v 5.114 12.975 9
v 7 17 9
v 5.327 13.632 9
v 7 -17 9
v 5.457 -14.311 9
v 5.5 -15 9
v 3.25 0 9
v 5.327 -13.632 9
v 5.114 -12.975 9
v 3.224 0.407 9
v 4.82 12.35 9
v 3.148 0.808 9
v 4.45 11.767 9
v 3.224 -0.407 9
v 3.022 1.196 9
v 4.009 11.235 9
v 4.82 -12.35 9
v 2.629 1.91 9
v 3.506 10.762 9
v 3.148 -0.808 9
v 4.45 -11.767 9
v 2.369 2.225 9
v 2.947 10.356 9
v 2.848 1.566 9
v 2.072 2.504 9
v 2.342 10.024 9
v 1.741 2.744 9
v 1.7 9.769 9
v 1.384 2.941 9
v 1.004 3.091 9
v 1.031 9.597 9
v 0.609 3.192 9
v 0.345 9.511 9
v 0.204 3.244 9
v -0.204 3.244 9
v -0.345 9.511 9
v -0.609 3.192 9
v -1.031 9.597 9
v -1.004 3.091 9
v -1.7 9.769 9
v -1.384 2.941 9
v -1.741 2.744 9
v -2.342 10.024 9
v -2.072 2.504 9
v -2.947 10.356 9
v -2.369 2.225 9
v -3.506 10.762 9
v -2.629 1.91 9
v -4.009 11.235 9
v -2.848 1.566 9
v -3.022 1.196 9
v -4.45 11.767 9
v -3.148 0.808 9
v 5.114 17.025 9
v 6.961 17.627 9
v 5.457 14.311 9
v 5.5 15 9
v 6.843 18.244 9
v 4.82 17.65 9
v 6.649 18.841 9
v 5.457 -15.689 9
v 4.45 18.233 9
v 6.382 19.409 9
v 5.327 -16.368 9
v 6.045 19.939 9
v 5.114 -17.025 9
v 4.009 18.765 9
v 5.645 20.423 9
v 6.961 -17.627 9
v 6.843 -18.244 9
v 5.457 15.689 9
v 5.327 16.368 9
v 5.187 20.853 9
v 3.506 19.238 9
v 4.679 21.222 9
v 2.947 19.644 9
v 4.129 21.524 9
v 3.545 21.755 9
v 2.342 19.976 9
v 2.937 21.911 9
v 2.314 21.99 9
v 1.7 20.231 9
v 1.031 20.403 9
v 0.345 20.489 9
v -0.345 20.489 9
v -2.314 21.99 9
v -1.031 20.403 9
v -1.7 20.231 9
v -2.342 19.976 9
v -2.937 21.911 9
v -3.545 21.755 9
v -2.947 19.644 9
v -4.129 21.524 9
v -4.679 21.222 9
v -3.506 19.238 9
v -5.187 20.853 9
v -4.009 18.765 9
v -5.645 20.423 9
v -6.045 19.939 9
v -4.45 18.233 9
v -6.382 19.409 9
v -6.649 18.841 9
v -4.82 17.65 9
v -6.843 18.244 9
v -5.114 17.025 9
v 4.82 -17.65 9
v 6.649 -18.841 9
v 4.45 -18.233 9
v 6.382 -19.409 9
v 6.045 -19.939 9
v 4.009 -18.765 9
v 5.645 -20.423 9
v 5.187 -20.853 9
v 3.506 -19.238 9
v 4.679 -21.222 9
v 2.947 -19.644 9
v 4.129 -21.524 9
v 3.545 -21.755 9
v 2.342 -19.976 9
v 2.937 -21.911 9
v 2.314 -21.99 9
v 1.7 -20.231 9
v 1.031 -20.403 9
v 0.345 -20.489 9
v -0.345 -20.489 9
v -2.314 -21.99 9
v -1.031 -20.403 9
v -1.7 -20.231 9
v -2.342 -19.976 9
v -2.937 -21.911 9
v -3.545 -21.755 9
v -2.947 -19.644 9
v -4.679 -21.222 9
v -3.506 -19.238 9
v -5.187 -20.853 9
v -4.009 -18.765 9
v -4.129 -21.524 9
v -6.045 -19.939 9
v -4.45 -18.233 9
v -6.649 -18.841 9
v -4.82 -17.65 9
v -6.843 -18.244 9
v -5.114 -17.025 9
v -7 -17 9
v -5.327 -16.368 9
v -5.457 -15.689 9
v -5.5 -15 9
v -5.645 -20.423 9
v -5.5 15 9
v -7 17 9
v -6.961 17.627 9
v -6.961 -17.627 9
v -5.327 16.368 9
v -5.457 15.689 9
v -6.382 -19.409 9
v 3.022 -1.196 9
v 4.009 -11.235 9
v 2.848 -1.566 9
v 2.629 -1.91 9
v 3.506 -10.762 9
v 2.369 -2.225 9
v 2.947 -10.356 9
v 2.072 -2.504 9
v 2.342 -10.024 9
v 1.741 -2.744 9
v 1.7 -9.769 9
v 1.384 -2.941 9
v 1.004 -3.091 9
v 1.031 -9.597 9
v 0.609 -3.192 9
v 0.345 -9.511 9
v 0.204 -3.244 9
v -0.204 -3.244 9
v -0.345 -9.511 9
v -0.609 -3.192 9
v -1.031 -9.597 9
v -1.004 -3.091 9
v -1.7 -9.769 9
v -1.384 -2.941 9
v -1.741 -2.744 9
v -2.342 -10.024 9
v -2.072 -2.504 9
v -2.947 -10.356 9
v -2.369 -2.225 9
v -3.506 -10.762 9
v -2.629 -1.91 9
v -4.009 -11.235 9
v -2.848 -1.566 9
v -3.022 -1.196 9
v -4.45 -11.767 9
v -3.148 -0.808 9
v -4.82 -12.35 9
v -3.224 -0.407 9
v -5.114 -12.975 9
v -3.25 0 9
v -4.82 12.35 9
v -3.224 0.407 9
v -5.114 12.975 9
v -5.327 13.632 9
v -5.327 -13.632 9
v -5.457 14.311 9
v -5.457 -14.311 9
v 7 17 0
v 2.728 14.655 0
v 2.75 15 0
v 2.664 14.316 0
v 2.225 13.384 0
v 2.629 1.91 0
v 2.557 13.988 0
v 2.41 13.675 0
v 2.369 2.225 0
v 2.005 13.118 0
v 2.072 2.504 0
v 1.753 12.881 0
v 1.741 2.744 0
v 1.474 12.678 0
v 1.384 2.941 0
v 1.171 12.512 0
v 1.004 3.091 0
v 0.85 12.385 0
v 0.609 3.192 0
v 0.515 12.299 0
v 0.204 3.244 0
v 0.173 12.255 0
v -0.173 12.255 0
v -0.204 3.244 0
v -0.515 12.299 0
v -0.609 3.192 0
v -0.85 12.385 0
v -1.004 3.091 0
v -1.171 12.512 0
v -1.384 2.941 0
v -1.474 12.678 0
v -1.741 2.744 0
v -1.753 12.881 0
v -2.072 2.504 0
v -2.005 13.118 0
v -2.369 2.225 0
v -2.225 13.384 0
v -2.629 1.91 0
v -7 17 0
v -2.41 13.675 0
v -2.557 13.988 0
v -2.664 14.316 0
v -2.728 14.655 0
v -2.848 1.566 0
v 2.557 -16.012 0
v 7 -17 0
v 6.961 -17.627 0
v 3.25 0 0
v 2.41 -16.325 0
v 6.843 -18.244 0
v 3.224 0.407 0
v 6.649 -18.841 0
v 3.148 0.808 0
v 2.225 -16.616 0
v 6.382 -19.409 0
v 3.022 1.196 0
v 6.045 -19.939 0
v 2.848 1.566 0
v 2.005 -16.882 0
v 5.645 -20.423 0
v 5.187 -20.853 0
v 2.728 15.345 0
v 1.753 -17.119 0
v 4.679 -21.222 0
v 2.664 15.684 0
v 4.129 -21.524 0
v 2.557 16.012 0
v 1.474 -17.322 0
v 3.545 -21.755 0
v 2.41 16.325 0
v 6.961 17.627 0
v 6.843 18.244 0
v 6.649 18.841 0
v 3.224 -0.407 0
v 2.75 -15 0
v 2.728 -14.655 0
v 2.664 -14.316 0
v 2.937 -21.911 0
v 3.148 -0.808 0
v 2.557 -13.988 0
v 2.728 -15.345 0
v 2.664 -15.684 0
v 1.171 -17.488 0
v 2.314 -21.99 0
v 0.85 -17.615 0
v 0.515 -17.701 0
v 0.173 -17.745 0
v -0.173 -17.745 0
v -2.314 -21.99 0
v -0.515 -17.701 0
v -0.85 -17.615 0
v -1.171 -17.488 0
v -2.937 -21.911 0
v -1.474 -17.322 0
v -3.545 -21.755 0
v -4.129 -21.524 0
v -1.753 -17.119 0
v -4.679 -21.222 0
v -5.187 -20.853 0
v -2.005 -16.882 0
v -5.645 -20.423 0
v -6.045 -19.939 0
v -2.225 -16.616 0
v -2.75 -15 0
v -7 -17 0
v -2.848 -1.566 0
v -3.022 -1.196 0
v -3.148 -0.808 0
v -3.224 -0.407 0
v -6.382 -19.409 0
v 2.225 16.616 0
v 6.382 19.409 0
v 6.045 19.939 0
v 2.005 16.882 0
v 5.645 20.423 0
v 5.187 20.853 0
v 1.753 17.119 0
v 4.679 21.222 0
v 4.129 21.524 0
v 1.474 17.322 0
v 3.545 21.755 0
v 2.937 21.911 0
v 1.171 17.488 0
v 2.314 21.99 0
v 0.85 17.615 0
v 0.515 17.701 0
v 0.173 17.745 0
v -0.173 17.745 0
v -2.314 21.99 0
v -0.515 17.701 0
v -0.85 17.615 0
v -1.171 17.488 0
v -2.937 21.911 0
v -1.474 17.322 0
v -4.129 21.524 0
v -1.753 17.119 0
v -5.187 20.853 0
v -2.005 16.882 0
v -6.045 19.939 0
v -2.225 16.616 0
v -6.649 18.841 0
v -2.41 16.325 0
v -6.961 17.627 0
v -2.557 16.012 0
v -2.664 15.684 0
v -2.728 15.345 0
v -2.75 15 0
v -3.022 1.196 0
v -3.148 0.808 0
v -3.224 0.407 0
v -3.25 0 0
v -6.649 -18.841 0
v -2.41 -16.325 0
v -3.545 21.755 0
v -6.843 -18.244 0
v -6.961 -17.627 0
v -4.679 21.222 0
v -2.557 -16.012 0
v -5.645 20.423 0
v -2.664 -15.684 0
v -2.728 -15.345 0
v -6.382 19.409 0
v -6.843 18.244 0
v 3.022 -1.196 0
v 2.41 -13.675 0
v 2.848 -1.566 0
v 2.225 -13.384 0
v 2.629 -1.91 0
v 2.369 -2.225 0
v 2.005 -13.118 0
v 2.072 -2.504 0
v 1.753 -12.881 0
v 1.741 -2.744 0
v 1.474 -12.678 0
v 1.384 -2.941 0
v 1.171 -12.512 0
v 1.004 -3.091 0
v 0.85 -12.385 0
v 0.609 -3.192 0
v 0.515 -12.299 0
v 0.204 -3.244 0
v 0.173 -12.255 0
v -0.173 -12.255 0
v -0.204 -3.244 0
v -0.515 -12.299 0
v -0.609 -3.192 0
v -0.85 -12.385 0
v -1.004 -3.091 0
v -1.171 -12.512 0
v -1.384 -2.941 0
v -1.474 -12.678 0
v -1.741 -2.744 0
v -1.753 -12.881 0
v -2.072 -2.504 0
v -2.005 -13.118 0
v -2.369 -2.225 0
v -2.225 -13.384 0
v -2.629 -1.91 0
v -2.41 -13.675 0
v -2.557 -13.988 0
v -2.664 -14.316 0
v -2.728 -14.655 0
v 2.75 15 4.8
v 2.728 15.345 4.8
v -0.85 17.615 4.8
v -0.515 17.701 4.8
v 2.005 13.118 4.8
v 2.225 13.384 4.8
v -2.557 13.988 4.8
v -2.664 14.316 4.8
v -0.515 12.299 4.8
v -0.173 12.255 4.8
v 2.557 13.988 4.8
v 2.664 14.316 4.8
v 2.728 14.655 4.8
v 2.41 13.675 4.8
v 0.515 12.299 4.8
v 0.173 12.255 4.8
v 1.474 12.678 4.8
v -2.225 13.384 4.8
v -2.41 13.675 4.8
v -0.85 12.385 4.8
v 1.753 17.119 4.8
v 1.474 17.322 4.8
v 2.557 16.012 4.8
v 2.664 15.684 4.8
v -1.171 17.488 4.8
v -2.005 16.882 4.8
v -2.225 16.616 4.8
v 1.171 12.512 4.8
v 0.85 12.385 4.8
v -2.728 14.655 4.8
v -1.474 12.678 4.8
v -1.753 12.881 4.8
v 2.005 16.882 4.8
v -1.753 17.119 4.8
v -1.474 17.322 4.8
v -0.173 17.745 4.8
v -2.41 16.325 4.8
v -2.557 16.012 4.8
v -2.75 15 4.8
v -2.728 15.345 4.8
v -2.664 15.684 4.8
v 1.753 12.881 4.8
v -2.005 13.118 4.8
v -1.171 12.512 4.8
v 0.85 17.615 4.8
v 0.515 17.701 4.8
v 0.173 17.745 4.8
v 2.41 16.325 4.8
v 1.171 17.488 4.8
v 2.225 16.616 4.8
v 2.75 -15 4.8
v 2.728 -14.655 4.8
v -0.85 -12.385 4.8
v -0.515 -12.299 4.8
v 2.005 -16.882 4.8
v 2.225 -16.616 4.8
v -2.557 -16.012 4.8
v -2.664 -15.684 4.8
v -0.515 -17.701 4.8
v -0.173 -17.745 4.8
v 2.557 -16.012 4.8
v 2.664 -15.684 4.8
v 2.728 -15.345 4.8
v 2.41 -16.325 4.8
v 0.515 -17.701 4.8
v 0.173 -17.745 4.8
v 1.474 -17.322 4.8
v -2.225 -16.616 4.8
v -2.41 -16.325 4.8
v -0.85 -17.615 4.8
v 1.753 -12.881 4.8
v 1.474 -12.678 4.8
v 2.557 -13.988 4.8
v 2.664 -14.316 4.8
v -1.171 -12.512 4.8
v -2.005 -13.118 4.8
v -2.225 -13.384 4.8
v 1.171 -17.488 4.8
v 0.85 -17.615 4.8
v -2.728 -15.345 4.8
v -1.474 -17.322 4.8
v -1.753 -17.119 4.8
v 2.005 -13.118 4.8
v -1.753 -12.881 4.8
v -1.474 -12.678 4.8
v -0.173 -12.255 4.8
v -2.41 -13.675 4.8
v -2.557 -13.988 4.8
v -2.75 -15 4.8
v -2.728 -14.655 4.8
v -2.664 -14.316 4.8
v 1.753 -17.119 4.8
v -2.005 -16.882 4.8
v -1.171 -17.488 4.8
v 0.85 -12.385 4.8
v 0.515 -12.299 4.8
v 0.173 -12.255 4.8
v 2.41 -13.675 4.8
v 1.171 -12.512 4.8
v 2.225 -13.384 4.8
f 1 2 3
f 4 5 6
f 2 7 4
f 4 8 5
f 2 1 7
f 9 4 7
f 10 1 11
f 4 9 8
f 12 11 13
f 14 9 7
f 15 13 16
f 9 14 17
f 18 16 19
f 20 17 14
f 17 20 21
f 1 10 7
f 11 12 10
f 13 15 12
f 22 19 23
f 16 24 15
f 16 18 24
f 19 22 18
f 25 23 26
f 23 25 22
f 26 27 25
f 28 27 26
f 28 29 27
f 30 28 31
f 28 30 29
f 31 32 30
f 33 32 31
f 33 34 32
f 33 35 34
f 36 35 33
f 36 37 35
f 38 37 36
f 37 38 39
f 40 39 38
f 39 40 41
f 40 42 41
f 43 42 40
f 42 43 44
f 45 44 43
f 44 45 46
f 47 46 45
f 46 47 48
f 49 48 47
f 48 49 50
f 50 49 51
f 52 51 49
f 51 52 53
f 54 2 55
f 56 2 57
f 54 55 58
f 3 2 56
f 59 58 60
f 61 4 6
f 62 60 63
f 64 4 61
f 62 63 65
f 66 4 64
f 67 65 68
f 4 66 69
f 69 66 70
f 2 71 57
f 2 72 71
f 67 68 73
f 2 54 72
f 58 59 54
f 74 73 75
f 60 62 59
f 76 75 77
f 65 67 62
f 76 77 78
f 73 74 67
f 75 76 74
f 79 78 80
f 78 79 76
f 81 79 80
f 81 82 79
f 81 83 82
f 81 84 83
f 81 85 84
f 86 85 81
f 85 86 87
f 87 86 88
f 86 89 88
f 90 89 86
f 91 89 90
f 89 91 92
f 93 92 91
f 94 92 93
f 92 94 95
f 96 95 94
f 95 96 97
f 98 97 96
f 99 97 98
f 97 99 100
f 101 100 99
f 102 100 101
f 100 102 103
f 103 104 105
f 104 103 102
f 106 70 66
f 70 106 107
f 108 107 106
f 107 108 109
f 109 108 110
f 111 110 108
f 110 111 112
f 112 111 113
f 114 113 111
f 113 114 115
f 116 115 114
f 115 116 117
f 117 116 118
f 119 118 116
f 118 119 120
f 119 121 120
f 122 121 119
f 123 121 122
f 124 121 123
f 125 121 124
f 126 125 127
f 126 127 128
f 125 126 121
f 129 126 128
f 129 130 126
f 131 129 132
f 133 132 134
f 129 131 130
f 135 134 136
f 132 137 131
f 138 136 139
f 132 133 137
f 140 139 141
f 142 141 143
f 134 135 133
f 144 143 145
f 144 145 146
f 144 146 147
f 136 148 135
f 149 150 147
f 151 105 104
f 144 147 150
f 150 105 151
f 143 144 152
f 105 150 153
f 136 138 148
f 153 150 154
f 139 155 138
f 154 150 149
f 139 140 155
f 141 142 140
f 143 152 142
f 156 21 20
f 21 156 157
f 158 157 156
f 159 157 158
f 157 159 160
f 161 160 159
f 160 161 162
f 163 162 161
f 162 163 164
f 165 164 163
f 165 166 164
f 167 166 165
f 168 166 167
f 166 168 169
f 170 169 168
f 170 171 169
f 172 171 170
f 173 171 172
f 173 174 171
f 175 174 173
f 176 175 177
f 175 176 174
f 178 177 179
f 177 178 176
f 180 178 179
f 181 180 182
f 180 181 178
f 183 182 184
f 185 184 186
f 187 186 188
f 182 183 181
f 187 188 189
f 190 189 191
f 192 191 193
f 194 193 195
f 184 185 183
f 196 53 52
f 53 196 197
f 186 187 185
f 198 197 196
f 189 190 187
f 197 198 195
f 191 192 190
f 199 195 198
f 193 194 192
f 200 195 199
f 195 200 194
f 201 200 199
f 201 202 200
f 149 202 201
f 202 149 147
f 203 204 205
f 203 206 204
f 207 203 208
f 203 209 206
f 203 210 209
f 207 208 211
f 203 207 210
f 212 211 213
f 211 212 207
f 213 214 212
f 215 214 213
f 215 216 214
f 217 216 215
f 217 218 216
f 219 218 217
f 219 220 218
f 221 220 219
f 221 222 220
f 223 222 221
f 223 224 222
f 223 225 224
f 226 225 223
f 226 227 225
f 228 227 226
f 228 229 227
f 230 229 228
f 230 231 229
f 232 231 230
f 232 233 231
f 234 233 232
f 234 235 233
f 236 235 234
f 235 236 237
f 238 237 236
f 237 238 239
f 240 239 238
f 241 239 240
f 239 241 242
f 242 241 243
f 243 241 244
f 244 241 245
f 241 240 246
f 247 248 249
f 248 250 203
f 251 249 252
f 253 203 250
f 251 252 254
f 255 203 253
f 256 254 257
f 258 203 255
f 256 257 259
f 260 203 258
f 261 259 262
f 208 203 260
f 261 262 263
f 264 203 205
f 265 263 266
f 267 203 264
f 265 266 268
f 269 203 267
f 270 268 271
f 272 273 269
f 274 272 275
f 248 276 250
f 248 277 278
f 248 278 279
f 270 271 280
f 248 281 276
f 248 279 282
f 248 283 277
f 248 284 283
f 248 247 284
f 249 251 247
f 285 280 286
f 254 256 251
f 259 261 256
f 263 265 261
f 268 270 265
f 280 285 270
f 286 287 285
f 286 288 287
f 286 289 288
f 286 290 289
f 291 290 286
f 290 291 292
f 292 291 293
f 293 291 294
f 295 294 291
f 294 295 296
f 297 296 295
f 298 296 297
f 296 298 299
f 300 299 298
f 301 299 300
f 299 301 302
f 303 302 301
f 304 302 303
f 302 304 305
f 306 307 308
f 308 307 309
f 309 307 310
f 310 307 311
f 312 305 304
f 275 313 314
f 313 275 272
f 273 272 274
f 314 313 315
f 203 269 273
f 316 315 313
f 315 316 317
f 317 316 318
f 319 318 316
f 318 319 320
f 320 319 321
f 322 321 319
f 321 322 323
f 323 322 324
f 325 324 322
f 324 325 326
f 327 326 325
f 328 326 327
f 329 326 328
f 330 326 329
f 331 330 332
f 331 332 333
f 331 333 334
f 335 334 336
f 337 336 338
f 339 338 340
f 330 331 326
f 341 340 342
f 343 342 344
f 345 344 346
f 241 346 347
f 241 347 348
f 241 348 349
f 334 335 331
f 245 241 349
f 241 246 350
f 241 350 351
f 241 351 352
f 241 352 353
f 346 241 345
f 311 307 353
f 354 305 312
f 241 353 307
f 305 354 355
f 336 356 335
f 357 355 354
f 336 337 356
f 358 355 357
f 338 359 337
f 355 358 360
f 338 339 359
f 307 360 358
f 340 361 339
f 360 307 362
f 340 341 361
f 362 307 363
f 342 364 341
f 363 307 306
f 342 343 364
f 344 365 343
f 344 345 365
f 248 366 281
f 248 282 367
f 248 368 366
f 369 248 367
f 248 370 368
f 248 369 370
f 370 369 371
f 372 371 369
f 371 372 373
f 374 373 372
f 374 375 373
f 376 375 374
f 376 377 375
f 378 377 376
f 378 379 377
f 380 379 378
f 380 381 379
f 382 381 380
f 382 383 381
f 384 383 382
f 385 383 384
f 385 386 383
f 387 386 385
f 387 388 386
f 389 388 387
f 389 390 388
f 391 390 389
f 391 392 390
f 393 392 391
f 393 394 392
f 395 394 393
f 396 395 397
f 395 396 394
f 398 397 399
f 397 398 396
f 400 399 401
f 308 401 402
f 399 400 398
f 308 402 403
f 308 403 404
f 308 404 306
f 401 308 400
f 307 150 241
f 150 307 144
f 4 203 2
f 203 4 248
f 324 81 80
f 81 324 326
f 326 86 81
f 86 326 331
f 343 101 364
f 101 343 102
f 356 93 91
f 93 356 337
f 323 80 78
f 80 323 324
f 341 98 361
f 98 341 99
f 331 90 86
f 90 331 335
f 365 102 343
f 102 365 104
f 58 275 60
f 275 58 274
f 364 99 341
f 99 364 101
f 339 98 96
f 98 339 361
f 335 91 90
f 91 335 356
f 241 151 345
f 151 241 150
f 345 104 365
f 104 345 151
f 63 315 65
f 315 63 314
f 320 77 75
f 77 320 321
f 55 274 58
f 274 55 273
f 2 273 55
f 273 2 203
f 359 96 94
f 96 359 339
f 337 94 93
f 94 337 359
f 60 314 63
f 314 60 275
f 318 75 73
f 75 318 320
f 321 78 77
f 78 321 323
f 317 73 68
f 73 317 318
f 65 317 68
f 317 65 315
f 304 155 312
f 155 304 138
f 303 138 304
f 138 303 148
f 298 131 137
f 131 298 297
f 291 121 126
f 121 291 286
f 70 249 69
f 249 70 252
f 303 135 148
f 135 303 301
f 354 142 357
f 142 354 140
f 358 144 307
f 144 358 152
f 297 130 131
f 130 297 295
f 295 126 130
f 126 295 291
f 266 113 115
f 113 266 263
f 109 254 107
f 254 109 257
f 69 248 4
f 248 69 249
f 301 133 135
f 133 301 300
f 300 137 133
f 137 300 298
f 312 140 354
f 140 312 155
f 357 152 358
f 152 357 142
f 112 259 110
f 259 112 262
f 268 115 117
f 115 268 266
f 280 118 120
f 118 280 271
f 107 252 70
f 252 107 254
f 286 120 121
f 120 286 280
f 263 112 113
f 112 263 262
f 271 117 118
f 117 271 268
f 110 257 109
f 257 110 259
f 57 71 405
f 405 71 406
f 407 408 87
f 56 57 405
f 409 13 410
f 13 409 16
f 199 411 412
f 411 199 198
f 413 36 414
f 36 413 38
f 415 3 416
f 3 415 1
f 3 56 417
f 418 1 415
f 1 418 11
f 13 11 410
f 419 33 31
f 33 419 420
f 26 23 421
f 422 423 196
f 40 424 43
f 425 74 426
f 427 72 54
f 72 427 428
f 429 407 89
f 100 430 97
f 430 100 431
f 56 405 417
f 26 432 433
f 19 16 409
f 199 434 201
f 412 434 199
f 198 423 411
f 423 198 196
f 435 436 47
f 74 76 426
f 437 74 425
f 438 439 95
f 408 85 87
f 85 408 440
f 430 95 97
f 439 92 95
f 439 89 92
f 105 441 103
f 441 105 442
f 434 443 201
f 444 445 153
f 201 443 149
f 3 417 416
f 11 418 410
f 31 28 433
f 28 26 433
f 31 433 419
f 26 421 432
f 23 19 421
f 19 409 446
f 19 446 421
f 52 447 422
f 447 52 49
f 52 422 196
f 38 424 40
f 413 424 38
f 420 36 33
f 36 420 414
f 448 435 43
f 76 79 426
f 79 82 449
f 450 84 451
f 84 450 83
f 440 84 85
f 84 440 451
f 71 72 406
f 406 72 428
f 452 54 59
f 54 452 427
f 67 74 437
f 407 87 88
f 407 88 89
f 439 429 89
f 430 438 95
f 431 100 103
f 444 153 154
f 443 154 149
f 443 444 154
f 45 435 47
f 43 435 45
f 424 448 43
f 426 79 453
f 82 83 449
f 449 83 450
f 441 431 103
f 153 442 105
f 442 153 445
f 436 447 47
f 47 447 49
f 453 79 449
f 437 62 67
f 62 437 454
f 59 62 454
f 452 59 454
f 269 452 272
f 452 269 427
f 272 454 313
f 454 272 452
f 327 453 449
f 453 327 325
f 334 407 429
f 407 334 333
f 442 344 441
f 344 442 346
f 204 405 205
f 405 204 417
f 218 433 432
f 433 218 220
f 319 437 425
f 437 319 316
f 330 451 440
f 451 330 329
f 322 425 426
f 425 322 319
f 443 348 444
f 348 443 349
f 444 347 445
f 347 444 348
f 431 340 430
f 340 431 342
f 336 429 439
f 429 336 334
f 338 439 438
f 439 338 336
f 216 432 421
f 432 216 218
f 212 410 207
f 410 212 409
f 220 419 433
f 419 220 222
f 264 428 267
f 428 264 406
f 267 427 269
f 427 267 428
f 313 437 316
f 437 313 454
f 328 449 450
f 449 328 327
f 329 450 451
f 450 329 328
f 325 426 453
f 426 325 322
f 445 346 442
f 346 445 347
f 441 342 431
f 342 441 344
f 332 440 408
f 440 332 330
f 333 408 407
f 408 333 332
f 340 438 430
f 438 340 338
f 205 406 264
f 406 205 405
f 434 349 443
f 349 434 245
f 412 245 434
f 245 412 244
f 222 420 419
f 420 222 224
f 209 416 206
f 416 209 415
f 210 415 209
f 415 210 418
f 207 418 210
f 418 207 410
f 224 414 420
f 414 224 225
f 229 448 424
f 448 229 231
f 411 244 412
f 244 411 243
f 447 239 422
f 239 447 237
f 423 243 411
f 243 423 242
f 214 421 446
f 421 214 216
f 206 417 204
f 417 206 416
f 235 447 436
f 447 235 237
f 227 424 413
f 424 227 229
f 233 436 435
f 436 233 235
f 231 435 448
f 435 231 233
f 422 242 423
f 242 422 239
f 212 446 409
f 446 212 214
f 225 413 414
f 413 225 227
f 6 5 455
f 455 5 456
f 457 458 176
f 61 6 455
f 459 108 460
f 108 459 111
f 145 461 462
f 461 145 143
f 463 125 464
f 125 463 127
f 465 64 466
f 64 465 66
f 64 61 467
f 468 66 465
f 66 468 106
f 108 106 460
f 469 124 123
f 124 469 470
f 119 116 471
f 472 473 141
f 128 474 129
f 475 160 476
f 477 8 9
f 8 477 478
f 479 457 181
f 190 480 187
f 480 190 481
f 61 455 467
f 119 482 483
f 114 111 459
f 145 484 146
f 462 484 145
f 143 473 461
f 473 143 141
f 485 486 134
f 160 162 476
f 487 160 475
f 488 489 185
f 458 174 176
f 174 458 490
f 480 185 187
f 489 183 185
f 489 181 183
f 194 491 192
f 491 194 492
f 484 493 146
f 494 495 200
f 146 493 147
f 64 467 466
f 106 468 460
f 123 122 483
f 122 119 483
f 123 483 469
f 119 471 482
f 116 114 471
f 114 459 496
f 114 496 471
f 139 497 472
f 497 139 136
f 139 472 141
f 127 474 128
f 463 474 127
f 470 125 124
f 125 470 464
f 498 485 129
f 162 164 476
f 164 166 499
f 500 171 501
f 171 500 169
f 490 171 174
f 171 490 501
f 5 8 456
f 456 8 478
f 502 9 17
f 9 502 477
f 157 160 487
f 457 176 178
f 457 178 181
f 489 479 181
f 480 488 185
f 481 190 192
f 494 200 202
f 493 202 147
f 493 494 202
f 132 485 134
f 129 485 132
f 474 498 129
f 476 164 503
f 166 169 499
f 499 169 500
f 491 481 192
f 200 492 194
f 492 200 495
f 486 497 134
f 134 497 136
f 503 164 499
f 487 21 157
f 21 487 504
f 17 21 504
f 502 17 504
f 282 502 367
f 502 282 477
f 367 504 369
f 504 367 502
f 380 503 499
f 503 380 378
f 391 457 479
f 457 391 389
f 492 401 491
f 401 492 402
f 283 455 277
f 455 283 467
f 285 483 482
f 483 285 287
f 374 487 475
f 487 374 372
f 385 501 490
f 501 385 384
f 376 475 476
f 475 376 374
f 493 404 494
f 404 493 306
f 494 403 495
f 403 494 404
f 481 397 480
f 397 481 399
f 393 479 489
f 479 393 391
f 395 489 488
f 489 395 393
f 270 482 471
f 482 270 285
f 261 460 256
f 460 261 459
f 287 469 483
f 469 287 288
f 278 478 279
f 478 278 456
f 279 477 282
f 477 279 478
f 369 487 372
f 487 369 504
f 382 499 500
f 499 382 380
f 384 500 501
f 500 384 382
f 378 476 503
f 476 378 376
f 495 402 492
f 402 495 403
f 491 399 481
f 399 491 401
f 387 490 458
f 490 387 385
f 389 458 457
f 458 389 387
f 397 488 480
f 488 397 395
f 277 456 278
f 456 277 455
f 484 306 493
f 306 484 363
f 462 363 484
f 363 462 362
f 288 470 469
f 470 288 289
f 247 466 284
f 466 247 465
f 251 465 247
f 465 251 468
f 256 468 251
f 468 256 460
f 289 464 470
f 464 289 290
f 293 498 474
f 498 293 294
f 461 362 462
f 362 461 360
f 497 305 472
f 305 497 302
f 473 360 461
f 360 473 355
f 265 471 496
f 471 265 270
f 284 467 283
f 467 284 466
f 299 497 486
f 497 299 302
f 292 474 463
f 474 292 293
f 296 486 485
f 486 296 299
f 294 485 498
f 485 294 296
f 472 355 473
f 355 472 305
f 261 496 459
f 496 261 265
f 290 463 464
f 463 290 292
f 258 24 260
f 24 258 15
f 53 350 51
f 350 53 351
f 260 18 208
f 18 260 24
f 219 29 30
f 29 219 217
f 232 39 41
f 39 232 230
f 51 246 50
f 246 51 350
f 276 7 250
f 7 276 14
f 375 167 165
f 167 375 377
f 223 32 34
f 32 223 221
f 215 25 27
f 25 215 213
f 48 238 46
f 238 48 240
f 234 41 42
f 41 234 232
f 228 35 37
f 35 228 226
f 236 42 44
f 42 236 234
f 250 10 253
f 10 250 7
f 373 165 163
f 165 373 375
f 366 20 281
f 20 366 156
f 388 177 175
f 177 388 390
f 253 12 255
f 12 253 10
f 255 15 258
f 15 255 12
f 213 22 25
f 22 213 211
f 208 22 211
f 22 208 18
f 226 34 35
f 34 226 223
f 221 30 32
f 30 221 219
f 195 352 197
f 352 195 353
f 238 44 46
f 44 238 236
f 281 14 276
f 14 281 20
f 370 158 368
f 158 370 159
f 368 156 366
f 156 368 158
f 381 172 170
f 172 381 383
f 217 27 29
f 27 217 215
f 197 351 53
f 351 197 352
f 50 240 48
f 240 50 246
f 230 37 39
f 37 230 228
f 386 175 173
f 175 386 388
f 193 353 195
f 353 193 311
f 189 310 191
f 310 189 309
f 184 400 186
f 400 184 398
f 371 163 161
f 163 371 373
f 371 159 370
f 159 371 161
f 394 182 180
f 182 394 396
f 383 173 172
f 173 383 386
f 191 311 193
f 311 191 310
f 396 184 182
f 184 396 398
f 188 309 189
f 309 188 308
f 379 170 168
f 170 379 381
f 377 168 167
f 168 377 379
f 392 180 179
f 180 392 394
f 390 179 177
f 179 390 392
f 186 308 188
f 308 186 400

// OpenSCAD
$fn = 50;


difference() {
	union() {
		cylinder(h = 9, r = 7.0000000000);
		translate(v = [0.0000000000, 7.5000000000, 0]) {
			hull() {
				translate(v = [-2.0000000000, 9.5000000000, 0]) {
					cylinder(h = 9, r = 5);
				}
				translate(v = [2.0000000000, 9.5000000000, 0]) {
					cylinder(h = 9, r = 5);
				}
				translate(v = [-2.0000000000, -9.5000000000, 0]) {
					cylinder(h = 9, r = 5);
				}
				translate(v = [2.0000000000, -9.5000000000, 0]) {
					cylinder(h = 9, r = 5);
				}
			}
		}
		translate(v = [0.0000000000, 7.5000000000, 0]) {
			hull() {
				translate(v = [-2.0000000000, 9.5000000000, 0]) {
					cylinder(h = 9, r = 5);
				}
				translate(v = [2.0000000000, 9.5000000000, 0]) {
					cylinder(h = 9, r = 5);
				}
				translate(v = [-2.0000000000, -9.5000000000, 0]) {
					cylinder(h = 9, r = 5);
				}
				translate(v = [2.0000000000, -9.5000000000, 0]) {
					cylinder(h = 9, r = 5);
				}
			}
		}
		translate(v = [0.0000000000, -7.5000000000, 0]) {
			hull() {
				translate(v = [-2.0000000000, 9.5000000000, 0]) {
					cylinder(h = 9, r = 5);
				}
				translate(v = [2.0000000000, 9.5000000000, 0]) {
					cylinder(h = 9, r = 5);
				}
				translate(v = [-2.0000000000, -9.5000000000, 0]) {
					cylinder(h = 9, r = 5);
				}
				translate(v = [2.0000000000, -9.5000000000, 0]) {
					cylinder(h = 9, r = 5);
				}
			}
		}
		translate(v = [0.0000000000, -7.5000000000, 0]) {
			hull() {
				translate(v = [-2.0000000000, 9.5000000000, 0]) {
					cylinder(h = 9, r = 5);
				}
				translate(v = [2.0000000000, 9.5000000000, 0]) {
					cylinder(h = 9, r = 5);
				}
				translate(v = [-2.0000000000, -9.5000000000, 0]) {
					cylinder(h = 9, r = 5);
				}
				translate(v = [2.0000000000, -9.5000000000, 0]) {
					cylinder(h = 9, r = 5);
				}
			}
		}
	}
	union() {
		translate(v = [0.0000000000, 15.0000000000, 9]) {
			rotate(a = [0, 0, 0]) {
				difference() {
					union() {
						#translate(v = [0, 0, -9.0000000000]) {
							cylinder(h = 9, r = 2.2500000000);
						}
						#translate(v = [0, 0, -4.2000000000]) {
							cylinder(h = 4.2000000000, r1 = 2.7500000000, r2 = 5.5000000000);
						}
						#translate(v = [0, 0, -9.0000000000]) {
							cylinder(h = 9, r = 2.7500000000);
						}
						#translate(v = [0, 0, -9.0000000000]) {
							cylinder(h = 9, r = 2.2500000000);
						}
					}
					union();
				}
			}
		}
		translate(v = [0.0000000000, 15.0000000000, 9]) {
			rotate(a = [0, 0, 0]) {
				difference() {
					union() {
						#translate(v = [0, 0, -9.0000000000]) {
							cylinder(h = 9, r = 2.2500000000);
						}
						#translate(v = [0, 0, -4.2000000000]) {
							cylinder(h = 4.2000000000, r1 = 2.7500000000, r2 = 5.5000000000);
						}
						#translate(v = [0, 0, -9.0000000000]) {
							cylinder(h = 9, r = 2.7500000000);
						}
						#translate(v = [0, 0, -9.0000000000]) {
							cylinder(h = 9, r = 2.2500000000);
						}
					}
					union();
				}
			}
		}
		translate(v = [0.0000000000, -15.0000000000, 9]) {
			rotate(a = [0, 0, 0]) {
				difference() {
					union() {
						#translate(v = [0, 0, -9.0000000000]) {
							cylinder(h = 9, r = 2.2500000000);
						}
						#translate(v = [0, 0, -4.2000000000]) {
							cylinder(h = 4.2000000000, r1 = 2.7500000000, r2 = 5.5000000000);
						}
						#translate(v = [0, 0, -9.0000000000]) {
							cylinder(h = 9, r = 2.7500000000);
						}
						#translate(v = [0, 0, -9.0000000000]) {
							cylinder(h = 9, r = 2.2500000000);
						}
					}
					union();
				}
			}
		}
		translate(v = [0.0000000000, -15.0000000000, 9]) {
			rotate(a = [0, 0, 0]) {
				difference() {
					union() {
						#translate(v = [0, 0, -9.0000000000]) {
							cylinder(h = 9, r = 2.2500000000);
						}
						#translate(v = [0, 0, -4.2000000000]) {
							cylinder(h = 4.2000000000, r1 = 2.7500000000, r2 = 5.5000000000);
						}
						#translate(v = [0, 0, -9.0000000000]) {
							cylinder(h = 9, r = 2.7500000000);
						}
						#translate(v = [0, 0, -9.0000000000]) {
							cylinder(h = 9, r = 2.2500000000);
						}
					}
					union();
				}
			}
		}
		translate(v = [0, 0, -100]) {
			cylinder(h = 200, r = 3.2500000000);
		}
		translate(v = [0, 0, -100]) {
			cylinder(h = 200, r = 1.8000000000);
		}
	}
}
